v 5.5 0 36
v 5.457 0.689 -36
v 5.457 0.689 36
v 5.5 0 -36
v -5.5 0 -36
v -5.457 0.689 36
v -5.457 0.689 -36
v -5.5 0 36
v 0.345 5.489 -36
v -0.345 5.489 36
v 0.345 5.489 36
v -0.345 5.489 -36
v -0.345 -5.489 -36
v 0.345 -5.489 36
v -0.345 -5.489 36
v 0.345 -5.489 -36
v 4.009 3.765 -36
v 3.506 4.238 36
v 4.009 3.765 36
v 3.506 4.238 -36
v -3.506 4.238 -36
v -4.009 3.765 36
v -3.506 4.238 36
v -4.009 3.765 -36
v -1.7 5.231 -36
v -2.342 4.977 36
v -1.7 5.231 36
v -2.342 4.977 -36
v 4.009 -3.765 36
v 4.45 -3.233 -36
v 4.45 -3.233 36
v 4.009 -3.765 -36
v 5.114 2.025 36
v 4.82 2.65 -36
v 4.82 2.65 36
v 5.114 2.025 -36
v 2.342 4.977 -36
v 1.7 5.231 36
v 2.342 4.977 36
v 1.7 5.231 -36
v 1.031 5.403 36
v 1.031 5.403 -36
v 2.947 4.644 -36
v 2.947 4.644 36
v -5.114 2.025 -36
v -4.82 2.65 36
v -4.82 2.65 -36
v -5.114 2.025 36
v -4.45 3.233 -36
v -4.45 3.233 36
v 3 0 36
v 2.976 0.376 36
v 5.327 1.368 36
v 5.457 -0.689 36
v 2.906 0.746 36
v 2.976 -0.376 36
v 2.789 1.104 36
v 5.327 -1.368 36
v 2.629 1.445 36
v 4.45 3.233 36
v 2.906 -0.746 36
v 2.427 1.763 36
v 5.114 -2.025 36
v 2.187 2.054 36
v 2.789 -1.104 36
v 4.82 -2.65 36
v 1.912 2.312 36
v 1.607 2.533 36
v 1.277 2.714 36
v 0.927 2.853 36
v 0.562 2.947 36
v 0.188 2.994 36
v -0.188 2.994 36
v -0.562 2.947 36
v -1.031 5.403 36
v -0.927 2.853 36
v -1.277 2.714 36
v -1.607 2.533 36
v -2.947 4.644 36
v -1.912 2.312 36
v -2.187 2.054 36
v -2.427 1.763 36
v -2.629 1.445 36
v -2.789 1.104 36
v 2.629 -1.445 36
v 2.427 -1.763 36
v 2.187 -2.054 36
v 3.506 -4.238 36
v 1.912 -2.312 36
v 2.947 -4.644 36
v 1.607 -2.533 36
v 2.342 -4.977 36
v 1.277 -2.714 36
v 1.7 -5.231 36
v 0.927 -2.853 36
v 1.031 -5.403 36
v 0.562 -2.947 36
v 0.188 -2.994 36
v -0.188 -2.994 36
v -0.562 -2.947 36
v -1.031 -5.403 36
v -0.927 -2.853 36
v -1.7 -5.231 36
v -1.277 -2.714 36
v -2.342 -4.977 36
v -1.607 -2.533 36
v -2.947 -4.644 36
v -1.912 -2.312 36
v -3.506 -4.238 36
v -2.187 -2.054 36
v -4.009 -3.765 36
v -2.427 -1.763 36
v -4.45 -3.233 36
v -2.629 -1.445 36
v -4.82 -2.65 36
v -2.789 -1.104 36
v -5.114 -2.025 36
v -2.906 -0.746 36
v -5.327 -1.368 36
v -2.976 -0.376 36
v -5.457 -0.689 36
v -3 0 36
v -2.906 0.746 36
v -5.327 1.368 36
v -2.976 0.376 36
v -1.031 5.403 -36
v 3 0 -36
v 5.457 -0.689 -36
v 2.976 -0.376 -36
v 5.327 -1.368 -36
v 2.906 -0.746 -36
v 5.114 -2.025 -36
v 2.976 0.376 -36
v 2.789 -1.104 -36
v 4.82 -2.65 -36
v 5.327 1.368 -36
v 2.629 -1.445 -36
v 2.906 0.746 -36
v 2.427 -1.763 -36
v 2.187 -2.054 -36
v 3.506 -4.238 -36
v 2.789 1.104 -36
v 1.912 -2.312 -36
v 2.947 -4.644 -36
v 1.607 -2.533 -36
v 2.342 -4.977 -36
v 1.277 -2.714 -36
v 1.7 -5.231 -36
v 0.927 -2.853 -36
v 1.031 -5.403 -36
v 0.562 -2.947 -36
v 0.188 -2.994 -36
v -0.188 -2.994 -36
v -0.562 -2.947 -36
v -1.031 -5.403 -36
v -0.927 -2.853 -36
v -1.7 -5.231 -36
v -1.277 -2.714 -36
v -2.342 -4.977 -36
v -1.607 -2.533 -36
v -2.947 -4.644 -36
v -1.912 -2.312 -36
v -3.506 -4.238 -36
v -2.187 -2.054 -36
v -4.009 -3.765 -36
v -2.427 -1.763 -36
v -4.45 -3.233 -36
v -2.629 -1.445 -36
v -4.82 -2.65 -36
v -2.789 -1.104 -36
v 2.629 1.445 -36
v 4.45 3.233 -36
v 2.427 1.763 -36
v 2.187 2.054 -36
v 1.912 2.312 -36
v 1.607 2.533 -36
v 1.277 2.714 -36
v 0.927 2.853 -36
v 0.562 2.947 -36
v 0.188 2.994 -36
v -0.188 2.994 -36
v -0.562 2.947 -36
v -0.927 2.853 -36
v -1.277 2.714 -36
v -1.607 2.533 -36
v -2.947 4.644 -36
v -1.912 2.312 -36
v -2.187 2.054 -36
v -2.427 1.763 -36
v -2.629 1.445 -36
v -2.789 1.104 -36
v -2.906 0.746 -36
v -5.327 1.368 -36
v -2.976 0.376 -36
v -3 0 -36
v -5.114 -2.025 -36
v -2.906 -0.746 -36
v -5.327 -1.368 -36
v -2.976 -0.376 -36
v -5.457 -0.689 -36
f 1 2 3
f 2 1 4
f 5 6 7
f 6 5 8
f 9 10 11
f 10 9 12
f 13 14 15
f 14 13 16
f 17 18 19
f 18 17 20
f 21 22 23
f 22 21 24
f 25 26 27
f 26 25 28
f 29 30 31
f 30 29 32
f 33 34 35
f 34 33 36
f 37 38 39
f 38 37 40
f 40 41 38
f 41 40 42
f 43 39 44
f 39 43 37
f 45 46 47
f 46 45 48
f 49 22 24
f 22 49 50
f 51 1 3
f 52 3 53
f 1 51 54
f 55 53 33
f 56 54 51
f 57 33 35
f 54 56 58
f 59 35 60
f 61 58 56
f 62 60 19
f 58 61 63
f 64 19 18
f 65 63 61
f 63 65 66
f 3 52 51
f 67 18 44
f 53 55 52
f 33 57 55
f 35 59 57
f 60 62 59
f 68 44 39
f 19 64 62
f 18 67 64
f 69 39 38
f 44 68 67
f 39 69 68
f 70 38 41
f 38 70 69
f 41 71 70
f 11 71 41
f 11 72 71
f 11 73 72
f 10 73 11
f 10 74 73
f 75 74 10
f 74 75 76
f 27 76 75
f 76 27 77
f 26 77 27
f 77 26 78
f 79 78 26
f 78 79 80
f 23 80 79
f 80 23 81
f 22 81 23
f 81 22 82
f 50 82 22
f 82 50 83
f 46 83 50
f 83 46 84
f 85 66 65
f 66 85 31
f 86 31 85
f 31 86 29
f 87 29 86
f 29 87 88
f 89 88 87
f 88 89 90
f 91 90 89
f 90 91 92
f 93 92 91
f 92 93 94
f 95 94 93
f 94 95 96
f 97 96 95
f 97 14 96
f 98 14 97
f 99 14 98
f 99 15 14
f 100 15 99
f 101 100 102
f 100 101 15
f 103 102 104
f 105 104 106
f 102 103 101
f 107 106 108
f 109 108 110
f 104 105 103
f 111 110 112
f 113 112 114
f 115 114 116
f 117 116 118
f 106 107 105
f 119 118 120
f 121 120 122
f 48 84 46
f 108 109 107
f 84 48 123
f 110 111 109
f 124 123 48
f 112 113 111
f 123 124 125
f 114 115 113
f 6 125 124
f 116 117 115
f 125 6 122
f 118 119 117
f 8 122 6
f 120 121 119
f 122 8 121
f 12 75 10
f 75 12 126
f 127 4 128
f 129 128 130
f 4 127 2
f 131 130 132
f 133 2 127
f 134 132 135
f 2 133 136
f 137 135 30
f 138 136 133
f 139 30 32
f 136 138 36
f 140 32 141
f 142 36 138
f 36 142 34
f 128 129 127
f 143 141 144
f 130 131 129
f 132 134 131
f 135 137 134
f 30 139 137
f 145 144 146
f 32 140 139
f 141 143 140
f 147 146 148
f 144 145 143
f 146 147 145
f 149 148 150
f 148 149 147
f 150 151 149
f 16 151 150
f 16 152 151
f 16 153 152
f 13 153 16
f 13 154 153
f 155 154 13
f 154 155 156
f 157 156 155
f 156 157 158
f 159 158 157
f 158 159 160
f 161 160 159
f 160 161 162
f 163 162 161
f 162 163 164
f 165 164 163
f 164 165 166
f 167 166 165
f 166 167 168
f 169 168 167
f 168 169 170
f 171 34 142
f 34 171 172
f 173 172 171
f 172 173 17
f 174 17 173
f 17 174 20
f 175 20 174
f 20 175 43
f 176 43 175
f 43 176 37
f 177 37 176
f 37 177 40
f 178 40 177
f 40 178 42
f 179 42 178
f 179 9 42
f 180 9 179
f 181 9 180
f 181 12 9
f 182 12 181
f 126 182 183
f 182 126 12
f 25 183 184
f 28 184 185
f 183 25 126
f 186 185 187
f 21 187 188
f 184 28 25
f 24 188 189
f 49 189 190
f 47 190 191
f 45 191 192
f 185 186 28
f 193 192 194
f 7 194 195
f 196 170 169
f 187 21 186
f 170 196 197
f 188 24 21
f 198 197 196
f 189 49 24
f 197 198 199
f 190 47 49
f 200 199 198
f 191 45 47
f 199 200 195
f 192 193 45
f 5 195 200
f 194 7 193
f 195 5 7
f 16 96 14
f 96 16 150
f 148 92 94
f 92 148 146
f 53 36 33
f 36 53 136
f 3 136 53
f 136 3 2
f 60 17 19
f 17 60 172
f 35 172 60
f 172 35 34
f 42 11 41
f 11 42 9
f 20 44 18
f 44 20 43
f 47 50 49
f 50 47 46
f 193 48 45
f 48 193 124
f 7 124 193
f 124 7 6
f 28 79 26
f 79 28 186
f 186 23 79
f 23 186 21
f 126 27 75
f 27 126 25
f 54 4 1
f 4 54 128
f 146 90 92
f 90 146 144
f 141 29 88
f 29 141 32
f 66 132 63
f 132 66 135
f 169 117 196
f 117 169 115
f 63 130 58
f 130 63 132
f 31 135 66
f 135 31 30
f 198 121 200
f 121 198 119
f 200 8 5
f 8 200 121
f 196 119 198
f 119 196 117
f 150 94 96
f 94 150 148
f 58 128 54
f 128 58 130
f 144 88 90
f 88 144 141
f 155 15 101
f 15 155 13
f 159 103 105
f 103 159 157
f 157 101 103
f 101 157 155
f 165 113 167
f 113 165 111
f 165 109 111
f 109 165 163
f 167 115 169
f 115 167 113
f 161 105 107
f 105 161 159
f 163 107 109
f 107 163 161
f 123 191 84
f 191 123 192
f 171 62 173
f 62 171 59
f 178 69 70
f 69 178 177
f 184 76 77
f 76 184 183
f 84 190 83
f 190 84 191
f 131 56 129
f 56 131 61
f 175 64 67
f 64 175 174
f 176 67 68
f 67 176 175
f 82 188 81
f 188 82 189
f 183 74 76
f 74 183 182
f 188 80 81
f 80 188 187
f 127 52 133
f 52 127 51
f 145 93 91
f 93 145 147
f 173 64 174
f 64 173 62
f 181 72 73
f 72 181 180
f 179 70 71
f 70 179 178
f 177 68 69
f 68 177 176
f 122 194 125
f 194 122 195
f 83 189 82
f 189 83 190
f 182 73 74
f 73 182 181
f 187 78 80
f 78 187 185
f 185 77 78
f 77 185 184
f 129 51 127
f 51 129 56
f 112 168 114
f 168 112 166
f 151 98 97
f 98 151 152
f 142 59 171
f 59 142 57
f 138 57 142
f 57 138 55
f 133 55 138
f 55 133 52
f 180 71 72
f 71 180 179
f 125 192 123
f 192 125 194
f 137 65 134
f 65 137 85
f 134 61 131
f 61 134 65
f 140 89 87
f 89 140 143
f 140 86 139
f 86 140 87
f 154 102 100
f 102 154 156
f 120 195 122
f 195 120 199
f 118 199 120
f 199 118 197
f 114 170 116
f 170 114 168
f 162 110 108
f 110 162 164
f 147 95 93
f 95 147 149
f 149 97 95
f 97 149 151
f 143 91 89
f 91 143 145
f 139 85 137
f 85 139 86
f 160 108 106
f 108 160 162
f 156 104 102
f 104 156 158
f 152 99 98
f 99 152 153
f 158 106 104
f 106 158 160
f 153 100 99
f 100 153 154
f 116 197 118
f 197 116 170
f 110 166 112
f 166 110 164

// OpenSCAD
$fn = 50;


difference() {
	union() {
		translate(v = [0, 0, -36.0000000000]) {
			cylinder(h = 72, r = 5.5000000000);
		}
	}
	union() {
		translate(v = [0, 0, -100.0000000000]) {
			cylinder(h = 200, r = 3);
		}
	}
}
